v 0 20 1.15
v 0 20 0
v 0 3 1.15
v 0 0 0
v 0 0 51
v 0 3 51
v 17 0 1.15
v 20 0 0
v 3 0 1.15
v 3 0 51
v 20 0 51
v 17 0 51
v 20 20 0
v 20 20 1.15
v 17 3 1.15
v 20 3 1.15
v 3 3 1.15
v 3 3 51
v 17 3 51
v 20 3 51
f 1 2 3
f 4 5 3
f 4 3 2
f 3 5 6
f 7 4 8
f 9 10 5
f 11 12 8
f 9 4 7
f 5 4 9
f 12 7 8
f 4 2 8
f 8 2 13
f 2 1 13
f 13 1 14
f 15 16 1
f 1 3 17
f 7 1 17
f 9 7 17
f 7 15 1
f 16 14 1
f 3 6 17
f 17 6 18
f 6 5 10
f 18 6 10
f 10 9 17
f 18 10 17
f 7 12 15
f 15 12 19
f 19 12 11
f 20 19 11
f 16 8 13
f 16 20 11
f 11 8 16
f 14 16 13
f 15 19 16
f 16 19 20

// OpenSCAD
resize([20,20,1.15])
cube(2);


resize([3,3,51])
cube(2);

translate([17,0,0])
resize([3,3,51])
cube(2);
